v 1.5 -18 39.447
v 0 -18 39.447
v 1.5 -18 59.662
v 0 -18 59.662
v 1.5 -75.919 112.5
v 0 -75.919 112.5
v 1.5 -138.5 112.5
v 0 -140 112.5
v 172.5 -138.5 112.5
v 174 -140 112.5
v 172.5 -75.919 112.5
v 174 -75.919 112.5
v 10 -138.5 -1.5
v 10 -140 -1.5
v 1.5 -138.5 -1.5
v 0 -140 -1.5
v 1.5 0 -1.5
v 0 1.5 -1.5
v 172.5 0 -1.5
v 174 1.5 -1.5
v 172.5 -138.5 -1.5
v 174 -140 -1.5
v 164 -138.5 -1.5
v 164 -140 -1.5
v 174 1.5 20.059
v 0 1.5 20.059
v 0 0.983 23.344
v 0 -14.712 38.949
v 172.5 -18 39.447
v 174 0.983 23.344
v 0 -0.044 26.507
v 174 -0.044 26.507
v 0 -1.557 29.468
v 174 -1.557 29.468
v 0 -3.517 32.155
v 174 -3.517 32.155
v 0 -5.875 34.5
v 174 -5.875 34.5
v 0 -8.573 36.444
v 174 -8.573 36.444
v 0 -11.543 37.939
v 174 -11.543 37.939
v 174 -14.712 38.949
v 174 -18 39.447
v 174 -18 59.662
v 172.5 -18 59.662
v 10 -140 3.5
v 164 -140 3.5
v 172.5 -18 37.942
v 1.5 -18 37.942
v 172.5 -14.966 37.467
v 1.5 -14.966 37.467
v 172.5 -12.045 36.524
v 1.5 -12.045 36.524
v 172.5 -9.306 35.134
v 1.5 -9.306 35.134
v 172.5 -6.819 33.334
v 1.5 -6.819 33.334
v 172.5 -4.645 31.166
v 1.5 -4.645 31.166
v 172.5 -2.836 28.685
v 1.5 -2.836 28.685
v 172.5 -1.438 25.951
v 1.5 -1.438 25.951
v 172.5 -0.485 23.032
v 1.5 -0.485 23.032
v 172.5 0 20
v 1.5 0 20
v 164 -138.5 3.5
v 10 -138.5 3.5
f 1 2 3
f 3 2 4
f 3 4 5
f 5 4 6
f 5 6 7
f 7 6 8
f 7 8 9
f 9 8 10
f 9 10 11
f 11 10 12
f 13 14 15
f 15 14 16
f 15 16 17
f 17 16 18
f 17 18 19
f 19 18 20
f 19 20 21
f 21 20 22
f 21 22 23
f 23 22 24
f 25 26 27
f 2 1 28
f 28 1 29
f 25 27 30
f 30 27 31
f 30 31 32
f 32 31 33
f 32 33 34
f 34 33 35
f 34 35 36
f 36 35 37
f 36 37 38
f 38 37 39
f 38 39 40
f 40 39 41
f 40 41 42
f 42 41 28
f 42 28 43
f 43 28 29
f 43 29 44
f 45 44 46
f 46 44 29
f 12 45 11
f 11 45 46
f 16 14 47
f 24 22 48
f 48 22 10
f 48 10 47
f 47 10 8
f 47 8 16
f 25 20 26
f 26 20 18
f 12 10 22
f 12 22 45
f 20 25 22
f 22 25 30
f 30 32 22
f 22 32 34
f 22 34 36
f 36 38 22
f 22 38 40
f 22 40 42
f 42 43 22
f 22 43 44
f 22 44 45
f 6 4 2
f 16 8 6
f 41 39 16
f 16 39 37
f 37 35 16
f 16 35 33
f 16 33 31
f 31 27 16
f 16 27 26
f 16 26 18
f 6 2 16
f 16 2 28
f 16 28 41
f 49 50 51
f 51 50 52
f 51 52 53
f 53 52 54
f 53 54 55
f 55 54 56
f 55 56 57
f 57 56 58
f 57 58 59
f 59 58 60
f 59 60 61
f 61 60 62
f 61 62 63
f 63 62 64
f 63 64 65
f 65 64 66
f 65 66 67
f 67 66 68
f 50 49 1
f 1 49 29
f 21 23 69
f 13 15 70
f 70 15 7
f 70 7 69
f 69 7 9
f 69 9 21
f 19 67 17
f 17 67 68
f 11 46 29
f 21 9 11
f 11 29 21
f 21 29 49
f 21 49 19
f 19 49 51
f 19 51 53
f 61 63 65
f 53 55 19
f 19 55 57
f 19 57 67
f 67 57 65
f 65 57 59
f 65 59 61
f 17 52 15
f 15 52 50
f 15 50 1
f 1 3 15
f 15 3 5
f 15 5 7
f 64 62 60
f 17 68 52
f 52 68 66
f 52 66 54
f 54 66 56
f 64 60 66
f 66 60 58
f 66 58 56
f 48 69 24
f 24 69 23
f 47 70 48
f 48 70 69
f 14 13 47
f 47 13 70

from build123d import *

# Parameters (mm, degrees)
BOSS_EXTRUDE2_DEPTH = 174
SHELL1_START        = 1.5
SHELL1_DEPTH        = 171
SKETCH2_W           = 154
SKETCH2_H           = 5
CUT_EXTRUDE1_DEPTH  = 140


# Read off the part's stored shape, not the designer's step: Shell1
with BuildPart() as part:
    # Sketch1 → Boss-Extrude2 (new body)
    with BuildSketch(Plane.YZ):
        with BuildLine():
            Line((1.5, 20.058890221), (1.5, -1.5))
            Line((1.5, -1.5), (-140, -1.5))
            Line((-140, -1.5), (-140, 112.5))
            Line((-140, 112.5), (-75.918585959, 112.5))
            Line((-75.918585959, 112.5), (-18, 59.661991757))
            Line((-18, 59.661991757), (-18, 39.44651964))
            ThreePointArc((-18, 39.44651964), (-4.649661835, 33.373910634), (1.5, 20.058890221))
        make_face()
    extrude(amount=BOSS_EXTRUDE2_DEPTH)

    # Shell1 outline → Shell1 (cut)
    with BuildSketch(Plane.YZ.offset(SHELL1_START)):
        with BuildLine():
            ThreePointArc((0, 20), (-5.689406445, 32.292423742), (-18, 37.942407235))
            Line((-18, 37.942407235), (-18, 59.661991757))
            Line((-18, 59.661991757), (-75.918585959, 112.5))
            Line((-75.918585959, 112.5), (-138.5, 112.5))
            Line((-138.5, 112.5), (-138.5, -1.5))
            Line((-138.5, -1.5), (0, -1.5))
            Line((0, -1.5), (0, 20))
        make_face()
    extrude(amount=SHELL1_DEPTH, mode=Mode.SUBTRACT)

    # Sketch2 → Cut-Extrude1 (cut)
    with BuildSketch(Plane.XZ.offset(140)):
        with Locations((87, 1)):
            Rectangle(SKETCH2_W, SKETCH2_H)
    extrude(amount=-CUT_EXTRUDE1_DEPTH, mode=Mode.SUBTRACT)


solid = part.part
